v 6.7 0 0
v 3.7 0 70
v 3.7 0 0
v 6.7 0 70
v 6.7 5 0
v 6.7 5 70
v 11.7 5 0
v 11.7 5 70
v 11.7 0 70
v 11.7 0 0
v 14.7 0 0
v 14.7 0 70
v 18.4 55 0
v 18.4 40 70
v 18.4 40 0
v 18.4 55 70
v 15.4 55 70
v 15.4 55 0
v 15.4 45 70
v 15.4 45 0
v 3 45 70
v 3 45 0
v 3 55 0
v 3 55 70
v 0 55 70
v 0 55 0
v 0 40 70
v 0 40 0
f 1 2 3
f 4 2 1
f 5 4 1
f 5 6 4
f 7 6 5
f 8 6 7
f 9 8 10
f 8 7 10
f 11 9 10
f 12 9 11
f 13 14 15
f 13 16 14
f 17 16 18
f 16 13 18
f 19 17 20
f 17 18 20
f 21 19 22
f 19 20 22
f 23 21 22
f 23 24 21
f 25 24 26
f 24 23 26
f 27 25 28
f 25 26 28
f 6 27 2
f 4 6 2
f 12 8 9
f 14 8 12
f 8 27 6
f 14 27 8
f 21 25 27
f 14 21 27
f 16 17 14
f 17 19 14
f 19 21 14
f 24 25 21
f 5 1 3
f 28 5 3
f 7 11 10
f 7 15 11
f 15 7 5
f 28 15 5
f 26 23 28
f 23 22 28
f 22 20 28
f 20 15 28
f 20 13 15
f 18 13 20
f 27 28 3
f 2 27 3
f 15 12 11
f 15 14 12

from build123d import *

# Parameters (mm, degrees)
BOSS_EXTRUDE1_DEPTH = 70
CHAMFER1_SIZE       = 40
CHAMFER1_SIZE2      = 3.7
CHAMFER2_SIZE       = 3.7
CHAMFER2_SIZE2      = 40


with BuildPart() as part:
    # Sketch1 → Boss-Extrude1 (new body)
    with BuildSketch(Plane.XY):
        Polygon((0, 0), (0, 55), (3, 55), (3, 45), (15.4, 45), (15.4, 55), (18.4, 55), (18.4, 0), (11.7, 0), (11.7, 5), (6.7, 5), (6.7, 0), align=None)
    extrude(amount=BOSS_EXTRUDE1_DEPTH)

    # Chamfer1
    chamfer1_edges = [part.edges().sort_by_distance(p)[0] for p in [
        (0, 0, 35),
    ]]
    chamfer1_side = [part.faces().sort_by_distance(p)[0] for p in [
        (0, 27.5, 35),
    ]]
    chamfer(chamfer1_edges, length=CHAMFER1_SIZE, length2=CHAMFER1_SIZE2, reference=chamfer1_side[0])

    # Chamfer2
    chamfer2_edges = [part.edges().sort_by_distance(p)[0] for p in [
        (18.4, 0, 35),
    ]]
    chamfer2_side = [part.faces().sort_by_distance(p)[0] for p in [
        (15.05, 0, 35),
    ]]
    chamfer(chamfer2_edges, length=CHAMFER2_SIZE, length2=CHAMFER2_SIZE2, reference=chamfer2_side[0])


solid = part.part
